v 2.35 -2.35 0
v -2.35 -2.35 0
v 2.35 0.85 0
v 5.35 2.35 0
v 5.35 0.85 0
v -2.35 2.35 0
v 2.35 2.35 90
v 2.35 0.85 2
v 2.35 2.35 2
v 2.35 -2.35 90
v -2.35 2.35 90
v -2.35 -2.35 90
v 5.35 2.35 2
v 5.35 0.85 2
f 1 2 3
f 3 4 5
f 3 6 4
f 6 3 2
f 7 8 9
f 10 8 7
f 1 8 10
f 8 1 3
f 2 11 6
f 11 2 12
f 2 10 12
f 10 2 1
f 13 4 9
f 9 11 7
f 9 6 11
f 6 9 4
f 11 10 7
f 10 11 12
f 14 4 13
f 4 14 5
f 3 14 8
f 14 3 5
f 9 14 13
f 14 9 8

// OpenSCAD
fin_size = [3, 1.5, 2];
stick_size = [4.7, 4.7, 90];

fin_pos = [
    (fin_size.x + stick_size.x)/2,
    (stick_size.y - fin_size.y)/2,
    0
    ];

linear_extrude(height=stick_size.z)
square([stick_size.x, stick_size.y], center=true);

translate(fin_pos)
linear_extrude(height=fin_size.z)
square([fin_size.x, fin_size.y], center=true);
